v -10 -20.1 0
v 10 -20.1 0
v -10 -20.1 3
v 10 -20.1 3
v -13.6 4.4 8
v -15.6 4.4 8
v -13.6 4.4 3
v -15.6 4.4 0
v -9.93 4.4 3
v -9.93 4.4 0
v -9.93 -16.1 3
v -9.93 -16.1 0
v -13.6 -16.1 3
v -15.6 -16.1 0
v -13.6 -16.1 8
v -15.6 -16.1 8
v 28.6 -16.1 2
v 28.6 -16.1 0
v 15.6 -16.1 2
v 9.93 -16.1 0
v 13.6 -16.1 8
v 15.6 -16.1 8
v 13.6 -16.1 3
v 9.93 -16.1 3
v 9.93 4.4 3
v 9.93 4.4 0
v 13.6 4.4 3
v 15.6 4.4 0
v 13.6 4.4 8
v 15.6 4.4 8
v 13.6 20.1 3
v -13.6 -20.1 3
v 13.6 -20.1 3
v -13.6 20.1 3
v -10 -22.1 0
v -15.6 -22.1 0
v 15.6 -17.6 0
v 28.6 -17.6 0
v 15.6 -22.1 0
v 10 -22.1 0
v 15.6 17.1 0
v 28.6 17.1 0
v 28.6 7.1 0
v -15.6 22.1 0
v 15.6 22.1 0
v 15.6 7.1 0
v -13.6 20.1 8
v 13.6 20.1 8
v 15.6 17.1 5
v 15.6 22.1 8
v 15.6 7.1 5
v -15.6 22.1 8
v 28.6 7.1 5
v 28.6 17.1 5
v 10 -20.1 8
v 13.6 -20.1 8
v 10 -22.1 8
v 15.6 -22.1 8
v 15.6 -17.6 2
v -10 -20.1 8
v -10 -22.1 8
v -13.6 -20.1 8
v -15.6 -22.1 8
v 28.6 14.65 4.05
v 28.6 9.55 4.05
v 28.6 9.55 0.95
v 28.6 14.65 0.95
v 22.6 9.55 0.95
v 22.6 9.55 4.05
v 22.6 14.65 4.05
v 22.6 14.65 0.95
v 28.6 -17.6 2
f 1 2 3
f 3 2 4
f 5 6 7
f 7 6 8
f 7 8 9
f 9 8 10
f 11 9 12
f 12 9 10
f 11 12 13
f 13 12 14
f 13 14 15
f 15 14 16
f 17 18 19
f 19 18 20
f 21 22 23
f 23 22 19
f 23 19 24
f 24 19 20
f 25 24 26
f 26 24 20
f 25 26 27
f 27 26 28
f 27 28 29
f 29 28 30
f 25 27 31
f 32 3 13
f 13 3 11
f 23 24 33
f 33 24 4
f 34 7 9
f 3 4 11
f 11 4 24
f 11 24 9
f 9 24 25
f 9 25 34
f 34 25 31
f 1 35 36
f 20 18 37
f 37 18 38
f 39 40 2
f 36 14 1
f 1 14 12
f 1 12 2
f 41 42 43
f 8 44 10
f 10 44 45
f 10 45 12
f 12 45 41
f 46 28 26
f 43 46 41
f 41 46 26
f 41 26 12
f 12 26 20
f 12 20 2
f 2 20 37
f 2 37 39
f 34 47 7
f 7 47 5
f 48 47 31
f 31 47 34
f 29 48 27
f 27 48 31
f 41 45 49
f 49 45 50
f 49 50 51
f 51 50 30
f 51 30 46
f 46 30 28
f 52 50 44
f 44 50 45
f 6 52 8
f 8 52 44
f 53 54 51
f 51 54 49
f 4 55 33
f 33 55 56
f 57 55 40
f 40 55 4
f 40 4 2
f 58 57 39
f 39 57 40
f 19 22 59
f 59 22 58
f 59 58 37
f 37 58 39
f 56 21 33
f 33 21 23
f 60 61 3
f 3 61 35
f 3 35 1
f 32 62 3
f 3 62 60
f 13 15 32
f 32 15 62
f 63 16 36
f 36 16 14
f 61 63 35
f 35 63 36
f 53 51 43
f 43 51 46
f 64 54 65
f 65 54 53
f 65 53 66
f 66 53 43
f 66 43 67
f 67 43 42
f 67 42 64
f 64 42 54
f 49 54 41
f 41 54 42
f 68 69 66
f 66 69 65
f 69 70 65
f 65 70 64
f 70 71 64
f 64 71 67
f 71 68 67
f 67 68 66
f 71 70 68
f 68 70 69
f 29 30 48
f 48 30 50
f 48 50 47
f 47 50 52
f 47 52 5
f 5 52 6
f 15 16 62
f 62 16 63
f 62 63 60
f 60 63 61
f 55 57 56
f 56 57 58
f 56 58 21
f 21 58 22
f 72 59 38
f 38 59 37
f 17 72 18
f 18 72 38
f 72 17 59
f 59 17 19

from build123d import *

# Parameters (mm, degrees)
BOSS_EXTRUDE1_DEPTH = 3
BOSS_EXTRUDE2_DEPTH = 5
SKETCH1_4_W         = 13
SKETCH1_4_H         = 10
BOSS_EXTRUDE3_DEPTH = 5
SKETCH2_W           = 3.1
SKETCH2_H           = 5.1
CUT_EXTRUDE1_DEPTH  = 6
BOSS_EXTRUDE4_DEPTH = 8
SKETCH3_W           = 13
SKETCH3_H           = 1.5
BOSS_EXTRUDE5_DEPTH = 2


with BuildPart() as part:
    # Sketch1 → Boss-Extrude1 (new body)
    with BuildSketch(Plane.XY):
        Polygon((9.93, 4.4), (13.6, 4.4), (13.6, 20.1), (-13.6, 20.1), (-13.6, 4.4), (-9.93, 4.4), (-9.93, -16.1), (-13.6, -16.1), (-13.6, -20.1), (-10, -20.1), (10, -20.1), (13.6, -20.1), (13.6, -16.1), (9.93, -16.1), align=None)
    extrude(amount=BOSS_EXTRUDE1_DEPTH)

    # Sketch1<3> → Boss-Extrude2 (add)
    with BuildSketch(Plane.XY):
        Polygon((15.6, 4.4), (15.6, 22.1), (-15.6, 22.1), (-15.6, 4.4), (-13.6, 4.4), (-13.6, 20.1), (13.6, 20.1), (13.6, 4.4), align=None)
        Polygon((15.6, -22.1), (15.6, -16.1), (13.6, -16.1), (13.6, -20.1), (10, -20.1), (10, -22.1), align=None)
        Polygon((-13.6, -16.1), (-15.6, -16.1), (-15.6, -22.1), (-10, -22.1), (-10, -20.1), (-13.6, -20.1), align=None)
    extrude(amount=BOSS_EXTRUDE2_DEPTH)

    # Sketch1<4> → Boss-Extrude3 (add)
    with BuildSketch(Plane.XY):
        with Locations((22.1, 12.1)):
            Rectangle(SKETCH1_4_W, SKETCH1_4_H)
    extrude(amount=BOSS_EXTRUDE3_DEPTH)

    # Sketch2 → Cut-Extrude1 (cut)
    with BuildSketch(Plane(origin=(28.6, 0, 0), x_dir=(0, 0, -1), z_dir=(1, 0, 0))):
        with Locations((-2.5, 12.1)):
            Rectangle(SKETCH2_W, SKETCH2_H)
    extrude(amount=-CUT_EXTRUDE1_DEPTH, mode=Mode.SUBTRACT)

    # Sketch1<5> → Boss-Extrude4 (add)
    with BuildSketch(Plane.XY):
        Polygon((15.6, 4.4), (15.6, 22.1), (-15.6, 22.1), (-15.6, 4.4), (-13.6, 4.4), (-13.6, 20.1), (13.6, 20.1), (13.6, 4.4), align=None)
        Polygon((15.6, -22.1), (15.6, -16.1), (13.6, -16.1), (13.6, -20.1), (10, -20.1), (10, -22.1), align=None)
        Polygon((-13.6, -16.1), (-15.6, -16.1), (-15.6, -22.1), (-10, -22.1), (-10, -20.1), (-13.6, -20.1), align=None)
    extrude(amount=BOSS_EXTRUDE4_DEPTH)

    # Sketch3 → Boss-Extrude5 (add)
    with BuildSketch(Plane(origin=(0, 0, 0), x_dir=(-1, 0, 0), z_dir=(0, 0, -1))):
        with Locations((-22.1, -16.85)):
            Rectangle(SKETCH3_W, SKETCH3_H)
    extrude(amount=-BOSS_EXTRUDE5_DEPTH)


solid = part.part
